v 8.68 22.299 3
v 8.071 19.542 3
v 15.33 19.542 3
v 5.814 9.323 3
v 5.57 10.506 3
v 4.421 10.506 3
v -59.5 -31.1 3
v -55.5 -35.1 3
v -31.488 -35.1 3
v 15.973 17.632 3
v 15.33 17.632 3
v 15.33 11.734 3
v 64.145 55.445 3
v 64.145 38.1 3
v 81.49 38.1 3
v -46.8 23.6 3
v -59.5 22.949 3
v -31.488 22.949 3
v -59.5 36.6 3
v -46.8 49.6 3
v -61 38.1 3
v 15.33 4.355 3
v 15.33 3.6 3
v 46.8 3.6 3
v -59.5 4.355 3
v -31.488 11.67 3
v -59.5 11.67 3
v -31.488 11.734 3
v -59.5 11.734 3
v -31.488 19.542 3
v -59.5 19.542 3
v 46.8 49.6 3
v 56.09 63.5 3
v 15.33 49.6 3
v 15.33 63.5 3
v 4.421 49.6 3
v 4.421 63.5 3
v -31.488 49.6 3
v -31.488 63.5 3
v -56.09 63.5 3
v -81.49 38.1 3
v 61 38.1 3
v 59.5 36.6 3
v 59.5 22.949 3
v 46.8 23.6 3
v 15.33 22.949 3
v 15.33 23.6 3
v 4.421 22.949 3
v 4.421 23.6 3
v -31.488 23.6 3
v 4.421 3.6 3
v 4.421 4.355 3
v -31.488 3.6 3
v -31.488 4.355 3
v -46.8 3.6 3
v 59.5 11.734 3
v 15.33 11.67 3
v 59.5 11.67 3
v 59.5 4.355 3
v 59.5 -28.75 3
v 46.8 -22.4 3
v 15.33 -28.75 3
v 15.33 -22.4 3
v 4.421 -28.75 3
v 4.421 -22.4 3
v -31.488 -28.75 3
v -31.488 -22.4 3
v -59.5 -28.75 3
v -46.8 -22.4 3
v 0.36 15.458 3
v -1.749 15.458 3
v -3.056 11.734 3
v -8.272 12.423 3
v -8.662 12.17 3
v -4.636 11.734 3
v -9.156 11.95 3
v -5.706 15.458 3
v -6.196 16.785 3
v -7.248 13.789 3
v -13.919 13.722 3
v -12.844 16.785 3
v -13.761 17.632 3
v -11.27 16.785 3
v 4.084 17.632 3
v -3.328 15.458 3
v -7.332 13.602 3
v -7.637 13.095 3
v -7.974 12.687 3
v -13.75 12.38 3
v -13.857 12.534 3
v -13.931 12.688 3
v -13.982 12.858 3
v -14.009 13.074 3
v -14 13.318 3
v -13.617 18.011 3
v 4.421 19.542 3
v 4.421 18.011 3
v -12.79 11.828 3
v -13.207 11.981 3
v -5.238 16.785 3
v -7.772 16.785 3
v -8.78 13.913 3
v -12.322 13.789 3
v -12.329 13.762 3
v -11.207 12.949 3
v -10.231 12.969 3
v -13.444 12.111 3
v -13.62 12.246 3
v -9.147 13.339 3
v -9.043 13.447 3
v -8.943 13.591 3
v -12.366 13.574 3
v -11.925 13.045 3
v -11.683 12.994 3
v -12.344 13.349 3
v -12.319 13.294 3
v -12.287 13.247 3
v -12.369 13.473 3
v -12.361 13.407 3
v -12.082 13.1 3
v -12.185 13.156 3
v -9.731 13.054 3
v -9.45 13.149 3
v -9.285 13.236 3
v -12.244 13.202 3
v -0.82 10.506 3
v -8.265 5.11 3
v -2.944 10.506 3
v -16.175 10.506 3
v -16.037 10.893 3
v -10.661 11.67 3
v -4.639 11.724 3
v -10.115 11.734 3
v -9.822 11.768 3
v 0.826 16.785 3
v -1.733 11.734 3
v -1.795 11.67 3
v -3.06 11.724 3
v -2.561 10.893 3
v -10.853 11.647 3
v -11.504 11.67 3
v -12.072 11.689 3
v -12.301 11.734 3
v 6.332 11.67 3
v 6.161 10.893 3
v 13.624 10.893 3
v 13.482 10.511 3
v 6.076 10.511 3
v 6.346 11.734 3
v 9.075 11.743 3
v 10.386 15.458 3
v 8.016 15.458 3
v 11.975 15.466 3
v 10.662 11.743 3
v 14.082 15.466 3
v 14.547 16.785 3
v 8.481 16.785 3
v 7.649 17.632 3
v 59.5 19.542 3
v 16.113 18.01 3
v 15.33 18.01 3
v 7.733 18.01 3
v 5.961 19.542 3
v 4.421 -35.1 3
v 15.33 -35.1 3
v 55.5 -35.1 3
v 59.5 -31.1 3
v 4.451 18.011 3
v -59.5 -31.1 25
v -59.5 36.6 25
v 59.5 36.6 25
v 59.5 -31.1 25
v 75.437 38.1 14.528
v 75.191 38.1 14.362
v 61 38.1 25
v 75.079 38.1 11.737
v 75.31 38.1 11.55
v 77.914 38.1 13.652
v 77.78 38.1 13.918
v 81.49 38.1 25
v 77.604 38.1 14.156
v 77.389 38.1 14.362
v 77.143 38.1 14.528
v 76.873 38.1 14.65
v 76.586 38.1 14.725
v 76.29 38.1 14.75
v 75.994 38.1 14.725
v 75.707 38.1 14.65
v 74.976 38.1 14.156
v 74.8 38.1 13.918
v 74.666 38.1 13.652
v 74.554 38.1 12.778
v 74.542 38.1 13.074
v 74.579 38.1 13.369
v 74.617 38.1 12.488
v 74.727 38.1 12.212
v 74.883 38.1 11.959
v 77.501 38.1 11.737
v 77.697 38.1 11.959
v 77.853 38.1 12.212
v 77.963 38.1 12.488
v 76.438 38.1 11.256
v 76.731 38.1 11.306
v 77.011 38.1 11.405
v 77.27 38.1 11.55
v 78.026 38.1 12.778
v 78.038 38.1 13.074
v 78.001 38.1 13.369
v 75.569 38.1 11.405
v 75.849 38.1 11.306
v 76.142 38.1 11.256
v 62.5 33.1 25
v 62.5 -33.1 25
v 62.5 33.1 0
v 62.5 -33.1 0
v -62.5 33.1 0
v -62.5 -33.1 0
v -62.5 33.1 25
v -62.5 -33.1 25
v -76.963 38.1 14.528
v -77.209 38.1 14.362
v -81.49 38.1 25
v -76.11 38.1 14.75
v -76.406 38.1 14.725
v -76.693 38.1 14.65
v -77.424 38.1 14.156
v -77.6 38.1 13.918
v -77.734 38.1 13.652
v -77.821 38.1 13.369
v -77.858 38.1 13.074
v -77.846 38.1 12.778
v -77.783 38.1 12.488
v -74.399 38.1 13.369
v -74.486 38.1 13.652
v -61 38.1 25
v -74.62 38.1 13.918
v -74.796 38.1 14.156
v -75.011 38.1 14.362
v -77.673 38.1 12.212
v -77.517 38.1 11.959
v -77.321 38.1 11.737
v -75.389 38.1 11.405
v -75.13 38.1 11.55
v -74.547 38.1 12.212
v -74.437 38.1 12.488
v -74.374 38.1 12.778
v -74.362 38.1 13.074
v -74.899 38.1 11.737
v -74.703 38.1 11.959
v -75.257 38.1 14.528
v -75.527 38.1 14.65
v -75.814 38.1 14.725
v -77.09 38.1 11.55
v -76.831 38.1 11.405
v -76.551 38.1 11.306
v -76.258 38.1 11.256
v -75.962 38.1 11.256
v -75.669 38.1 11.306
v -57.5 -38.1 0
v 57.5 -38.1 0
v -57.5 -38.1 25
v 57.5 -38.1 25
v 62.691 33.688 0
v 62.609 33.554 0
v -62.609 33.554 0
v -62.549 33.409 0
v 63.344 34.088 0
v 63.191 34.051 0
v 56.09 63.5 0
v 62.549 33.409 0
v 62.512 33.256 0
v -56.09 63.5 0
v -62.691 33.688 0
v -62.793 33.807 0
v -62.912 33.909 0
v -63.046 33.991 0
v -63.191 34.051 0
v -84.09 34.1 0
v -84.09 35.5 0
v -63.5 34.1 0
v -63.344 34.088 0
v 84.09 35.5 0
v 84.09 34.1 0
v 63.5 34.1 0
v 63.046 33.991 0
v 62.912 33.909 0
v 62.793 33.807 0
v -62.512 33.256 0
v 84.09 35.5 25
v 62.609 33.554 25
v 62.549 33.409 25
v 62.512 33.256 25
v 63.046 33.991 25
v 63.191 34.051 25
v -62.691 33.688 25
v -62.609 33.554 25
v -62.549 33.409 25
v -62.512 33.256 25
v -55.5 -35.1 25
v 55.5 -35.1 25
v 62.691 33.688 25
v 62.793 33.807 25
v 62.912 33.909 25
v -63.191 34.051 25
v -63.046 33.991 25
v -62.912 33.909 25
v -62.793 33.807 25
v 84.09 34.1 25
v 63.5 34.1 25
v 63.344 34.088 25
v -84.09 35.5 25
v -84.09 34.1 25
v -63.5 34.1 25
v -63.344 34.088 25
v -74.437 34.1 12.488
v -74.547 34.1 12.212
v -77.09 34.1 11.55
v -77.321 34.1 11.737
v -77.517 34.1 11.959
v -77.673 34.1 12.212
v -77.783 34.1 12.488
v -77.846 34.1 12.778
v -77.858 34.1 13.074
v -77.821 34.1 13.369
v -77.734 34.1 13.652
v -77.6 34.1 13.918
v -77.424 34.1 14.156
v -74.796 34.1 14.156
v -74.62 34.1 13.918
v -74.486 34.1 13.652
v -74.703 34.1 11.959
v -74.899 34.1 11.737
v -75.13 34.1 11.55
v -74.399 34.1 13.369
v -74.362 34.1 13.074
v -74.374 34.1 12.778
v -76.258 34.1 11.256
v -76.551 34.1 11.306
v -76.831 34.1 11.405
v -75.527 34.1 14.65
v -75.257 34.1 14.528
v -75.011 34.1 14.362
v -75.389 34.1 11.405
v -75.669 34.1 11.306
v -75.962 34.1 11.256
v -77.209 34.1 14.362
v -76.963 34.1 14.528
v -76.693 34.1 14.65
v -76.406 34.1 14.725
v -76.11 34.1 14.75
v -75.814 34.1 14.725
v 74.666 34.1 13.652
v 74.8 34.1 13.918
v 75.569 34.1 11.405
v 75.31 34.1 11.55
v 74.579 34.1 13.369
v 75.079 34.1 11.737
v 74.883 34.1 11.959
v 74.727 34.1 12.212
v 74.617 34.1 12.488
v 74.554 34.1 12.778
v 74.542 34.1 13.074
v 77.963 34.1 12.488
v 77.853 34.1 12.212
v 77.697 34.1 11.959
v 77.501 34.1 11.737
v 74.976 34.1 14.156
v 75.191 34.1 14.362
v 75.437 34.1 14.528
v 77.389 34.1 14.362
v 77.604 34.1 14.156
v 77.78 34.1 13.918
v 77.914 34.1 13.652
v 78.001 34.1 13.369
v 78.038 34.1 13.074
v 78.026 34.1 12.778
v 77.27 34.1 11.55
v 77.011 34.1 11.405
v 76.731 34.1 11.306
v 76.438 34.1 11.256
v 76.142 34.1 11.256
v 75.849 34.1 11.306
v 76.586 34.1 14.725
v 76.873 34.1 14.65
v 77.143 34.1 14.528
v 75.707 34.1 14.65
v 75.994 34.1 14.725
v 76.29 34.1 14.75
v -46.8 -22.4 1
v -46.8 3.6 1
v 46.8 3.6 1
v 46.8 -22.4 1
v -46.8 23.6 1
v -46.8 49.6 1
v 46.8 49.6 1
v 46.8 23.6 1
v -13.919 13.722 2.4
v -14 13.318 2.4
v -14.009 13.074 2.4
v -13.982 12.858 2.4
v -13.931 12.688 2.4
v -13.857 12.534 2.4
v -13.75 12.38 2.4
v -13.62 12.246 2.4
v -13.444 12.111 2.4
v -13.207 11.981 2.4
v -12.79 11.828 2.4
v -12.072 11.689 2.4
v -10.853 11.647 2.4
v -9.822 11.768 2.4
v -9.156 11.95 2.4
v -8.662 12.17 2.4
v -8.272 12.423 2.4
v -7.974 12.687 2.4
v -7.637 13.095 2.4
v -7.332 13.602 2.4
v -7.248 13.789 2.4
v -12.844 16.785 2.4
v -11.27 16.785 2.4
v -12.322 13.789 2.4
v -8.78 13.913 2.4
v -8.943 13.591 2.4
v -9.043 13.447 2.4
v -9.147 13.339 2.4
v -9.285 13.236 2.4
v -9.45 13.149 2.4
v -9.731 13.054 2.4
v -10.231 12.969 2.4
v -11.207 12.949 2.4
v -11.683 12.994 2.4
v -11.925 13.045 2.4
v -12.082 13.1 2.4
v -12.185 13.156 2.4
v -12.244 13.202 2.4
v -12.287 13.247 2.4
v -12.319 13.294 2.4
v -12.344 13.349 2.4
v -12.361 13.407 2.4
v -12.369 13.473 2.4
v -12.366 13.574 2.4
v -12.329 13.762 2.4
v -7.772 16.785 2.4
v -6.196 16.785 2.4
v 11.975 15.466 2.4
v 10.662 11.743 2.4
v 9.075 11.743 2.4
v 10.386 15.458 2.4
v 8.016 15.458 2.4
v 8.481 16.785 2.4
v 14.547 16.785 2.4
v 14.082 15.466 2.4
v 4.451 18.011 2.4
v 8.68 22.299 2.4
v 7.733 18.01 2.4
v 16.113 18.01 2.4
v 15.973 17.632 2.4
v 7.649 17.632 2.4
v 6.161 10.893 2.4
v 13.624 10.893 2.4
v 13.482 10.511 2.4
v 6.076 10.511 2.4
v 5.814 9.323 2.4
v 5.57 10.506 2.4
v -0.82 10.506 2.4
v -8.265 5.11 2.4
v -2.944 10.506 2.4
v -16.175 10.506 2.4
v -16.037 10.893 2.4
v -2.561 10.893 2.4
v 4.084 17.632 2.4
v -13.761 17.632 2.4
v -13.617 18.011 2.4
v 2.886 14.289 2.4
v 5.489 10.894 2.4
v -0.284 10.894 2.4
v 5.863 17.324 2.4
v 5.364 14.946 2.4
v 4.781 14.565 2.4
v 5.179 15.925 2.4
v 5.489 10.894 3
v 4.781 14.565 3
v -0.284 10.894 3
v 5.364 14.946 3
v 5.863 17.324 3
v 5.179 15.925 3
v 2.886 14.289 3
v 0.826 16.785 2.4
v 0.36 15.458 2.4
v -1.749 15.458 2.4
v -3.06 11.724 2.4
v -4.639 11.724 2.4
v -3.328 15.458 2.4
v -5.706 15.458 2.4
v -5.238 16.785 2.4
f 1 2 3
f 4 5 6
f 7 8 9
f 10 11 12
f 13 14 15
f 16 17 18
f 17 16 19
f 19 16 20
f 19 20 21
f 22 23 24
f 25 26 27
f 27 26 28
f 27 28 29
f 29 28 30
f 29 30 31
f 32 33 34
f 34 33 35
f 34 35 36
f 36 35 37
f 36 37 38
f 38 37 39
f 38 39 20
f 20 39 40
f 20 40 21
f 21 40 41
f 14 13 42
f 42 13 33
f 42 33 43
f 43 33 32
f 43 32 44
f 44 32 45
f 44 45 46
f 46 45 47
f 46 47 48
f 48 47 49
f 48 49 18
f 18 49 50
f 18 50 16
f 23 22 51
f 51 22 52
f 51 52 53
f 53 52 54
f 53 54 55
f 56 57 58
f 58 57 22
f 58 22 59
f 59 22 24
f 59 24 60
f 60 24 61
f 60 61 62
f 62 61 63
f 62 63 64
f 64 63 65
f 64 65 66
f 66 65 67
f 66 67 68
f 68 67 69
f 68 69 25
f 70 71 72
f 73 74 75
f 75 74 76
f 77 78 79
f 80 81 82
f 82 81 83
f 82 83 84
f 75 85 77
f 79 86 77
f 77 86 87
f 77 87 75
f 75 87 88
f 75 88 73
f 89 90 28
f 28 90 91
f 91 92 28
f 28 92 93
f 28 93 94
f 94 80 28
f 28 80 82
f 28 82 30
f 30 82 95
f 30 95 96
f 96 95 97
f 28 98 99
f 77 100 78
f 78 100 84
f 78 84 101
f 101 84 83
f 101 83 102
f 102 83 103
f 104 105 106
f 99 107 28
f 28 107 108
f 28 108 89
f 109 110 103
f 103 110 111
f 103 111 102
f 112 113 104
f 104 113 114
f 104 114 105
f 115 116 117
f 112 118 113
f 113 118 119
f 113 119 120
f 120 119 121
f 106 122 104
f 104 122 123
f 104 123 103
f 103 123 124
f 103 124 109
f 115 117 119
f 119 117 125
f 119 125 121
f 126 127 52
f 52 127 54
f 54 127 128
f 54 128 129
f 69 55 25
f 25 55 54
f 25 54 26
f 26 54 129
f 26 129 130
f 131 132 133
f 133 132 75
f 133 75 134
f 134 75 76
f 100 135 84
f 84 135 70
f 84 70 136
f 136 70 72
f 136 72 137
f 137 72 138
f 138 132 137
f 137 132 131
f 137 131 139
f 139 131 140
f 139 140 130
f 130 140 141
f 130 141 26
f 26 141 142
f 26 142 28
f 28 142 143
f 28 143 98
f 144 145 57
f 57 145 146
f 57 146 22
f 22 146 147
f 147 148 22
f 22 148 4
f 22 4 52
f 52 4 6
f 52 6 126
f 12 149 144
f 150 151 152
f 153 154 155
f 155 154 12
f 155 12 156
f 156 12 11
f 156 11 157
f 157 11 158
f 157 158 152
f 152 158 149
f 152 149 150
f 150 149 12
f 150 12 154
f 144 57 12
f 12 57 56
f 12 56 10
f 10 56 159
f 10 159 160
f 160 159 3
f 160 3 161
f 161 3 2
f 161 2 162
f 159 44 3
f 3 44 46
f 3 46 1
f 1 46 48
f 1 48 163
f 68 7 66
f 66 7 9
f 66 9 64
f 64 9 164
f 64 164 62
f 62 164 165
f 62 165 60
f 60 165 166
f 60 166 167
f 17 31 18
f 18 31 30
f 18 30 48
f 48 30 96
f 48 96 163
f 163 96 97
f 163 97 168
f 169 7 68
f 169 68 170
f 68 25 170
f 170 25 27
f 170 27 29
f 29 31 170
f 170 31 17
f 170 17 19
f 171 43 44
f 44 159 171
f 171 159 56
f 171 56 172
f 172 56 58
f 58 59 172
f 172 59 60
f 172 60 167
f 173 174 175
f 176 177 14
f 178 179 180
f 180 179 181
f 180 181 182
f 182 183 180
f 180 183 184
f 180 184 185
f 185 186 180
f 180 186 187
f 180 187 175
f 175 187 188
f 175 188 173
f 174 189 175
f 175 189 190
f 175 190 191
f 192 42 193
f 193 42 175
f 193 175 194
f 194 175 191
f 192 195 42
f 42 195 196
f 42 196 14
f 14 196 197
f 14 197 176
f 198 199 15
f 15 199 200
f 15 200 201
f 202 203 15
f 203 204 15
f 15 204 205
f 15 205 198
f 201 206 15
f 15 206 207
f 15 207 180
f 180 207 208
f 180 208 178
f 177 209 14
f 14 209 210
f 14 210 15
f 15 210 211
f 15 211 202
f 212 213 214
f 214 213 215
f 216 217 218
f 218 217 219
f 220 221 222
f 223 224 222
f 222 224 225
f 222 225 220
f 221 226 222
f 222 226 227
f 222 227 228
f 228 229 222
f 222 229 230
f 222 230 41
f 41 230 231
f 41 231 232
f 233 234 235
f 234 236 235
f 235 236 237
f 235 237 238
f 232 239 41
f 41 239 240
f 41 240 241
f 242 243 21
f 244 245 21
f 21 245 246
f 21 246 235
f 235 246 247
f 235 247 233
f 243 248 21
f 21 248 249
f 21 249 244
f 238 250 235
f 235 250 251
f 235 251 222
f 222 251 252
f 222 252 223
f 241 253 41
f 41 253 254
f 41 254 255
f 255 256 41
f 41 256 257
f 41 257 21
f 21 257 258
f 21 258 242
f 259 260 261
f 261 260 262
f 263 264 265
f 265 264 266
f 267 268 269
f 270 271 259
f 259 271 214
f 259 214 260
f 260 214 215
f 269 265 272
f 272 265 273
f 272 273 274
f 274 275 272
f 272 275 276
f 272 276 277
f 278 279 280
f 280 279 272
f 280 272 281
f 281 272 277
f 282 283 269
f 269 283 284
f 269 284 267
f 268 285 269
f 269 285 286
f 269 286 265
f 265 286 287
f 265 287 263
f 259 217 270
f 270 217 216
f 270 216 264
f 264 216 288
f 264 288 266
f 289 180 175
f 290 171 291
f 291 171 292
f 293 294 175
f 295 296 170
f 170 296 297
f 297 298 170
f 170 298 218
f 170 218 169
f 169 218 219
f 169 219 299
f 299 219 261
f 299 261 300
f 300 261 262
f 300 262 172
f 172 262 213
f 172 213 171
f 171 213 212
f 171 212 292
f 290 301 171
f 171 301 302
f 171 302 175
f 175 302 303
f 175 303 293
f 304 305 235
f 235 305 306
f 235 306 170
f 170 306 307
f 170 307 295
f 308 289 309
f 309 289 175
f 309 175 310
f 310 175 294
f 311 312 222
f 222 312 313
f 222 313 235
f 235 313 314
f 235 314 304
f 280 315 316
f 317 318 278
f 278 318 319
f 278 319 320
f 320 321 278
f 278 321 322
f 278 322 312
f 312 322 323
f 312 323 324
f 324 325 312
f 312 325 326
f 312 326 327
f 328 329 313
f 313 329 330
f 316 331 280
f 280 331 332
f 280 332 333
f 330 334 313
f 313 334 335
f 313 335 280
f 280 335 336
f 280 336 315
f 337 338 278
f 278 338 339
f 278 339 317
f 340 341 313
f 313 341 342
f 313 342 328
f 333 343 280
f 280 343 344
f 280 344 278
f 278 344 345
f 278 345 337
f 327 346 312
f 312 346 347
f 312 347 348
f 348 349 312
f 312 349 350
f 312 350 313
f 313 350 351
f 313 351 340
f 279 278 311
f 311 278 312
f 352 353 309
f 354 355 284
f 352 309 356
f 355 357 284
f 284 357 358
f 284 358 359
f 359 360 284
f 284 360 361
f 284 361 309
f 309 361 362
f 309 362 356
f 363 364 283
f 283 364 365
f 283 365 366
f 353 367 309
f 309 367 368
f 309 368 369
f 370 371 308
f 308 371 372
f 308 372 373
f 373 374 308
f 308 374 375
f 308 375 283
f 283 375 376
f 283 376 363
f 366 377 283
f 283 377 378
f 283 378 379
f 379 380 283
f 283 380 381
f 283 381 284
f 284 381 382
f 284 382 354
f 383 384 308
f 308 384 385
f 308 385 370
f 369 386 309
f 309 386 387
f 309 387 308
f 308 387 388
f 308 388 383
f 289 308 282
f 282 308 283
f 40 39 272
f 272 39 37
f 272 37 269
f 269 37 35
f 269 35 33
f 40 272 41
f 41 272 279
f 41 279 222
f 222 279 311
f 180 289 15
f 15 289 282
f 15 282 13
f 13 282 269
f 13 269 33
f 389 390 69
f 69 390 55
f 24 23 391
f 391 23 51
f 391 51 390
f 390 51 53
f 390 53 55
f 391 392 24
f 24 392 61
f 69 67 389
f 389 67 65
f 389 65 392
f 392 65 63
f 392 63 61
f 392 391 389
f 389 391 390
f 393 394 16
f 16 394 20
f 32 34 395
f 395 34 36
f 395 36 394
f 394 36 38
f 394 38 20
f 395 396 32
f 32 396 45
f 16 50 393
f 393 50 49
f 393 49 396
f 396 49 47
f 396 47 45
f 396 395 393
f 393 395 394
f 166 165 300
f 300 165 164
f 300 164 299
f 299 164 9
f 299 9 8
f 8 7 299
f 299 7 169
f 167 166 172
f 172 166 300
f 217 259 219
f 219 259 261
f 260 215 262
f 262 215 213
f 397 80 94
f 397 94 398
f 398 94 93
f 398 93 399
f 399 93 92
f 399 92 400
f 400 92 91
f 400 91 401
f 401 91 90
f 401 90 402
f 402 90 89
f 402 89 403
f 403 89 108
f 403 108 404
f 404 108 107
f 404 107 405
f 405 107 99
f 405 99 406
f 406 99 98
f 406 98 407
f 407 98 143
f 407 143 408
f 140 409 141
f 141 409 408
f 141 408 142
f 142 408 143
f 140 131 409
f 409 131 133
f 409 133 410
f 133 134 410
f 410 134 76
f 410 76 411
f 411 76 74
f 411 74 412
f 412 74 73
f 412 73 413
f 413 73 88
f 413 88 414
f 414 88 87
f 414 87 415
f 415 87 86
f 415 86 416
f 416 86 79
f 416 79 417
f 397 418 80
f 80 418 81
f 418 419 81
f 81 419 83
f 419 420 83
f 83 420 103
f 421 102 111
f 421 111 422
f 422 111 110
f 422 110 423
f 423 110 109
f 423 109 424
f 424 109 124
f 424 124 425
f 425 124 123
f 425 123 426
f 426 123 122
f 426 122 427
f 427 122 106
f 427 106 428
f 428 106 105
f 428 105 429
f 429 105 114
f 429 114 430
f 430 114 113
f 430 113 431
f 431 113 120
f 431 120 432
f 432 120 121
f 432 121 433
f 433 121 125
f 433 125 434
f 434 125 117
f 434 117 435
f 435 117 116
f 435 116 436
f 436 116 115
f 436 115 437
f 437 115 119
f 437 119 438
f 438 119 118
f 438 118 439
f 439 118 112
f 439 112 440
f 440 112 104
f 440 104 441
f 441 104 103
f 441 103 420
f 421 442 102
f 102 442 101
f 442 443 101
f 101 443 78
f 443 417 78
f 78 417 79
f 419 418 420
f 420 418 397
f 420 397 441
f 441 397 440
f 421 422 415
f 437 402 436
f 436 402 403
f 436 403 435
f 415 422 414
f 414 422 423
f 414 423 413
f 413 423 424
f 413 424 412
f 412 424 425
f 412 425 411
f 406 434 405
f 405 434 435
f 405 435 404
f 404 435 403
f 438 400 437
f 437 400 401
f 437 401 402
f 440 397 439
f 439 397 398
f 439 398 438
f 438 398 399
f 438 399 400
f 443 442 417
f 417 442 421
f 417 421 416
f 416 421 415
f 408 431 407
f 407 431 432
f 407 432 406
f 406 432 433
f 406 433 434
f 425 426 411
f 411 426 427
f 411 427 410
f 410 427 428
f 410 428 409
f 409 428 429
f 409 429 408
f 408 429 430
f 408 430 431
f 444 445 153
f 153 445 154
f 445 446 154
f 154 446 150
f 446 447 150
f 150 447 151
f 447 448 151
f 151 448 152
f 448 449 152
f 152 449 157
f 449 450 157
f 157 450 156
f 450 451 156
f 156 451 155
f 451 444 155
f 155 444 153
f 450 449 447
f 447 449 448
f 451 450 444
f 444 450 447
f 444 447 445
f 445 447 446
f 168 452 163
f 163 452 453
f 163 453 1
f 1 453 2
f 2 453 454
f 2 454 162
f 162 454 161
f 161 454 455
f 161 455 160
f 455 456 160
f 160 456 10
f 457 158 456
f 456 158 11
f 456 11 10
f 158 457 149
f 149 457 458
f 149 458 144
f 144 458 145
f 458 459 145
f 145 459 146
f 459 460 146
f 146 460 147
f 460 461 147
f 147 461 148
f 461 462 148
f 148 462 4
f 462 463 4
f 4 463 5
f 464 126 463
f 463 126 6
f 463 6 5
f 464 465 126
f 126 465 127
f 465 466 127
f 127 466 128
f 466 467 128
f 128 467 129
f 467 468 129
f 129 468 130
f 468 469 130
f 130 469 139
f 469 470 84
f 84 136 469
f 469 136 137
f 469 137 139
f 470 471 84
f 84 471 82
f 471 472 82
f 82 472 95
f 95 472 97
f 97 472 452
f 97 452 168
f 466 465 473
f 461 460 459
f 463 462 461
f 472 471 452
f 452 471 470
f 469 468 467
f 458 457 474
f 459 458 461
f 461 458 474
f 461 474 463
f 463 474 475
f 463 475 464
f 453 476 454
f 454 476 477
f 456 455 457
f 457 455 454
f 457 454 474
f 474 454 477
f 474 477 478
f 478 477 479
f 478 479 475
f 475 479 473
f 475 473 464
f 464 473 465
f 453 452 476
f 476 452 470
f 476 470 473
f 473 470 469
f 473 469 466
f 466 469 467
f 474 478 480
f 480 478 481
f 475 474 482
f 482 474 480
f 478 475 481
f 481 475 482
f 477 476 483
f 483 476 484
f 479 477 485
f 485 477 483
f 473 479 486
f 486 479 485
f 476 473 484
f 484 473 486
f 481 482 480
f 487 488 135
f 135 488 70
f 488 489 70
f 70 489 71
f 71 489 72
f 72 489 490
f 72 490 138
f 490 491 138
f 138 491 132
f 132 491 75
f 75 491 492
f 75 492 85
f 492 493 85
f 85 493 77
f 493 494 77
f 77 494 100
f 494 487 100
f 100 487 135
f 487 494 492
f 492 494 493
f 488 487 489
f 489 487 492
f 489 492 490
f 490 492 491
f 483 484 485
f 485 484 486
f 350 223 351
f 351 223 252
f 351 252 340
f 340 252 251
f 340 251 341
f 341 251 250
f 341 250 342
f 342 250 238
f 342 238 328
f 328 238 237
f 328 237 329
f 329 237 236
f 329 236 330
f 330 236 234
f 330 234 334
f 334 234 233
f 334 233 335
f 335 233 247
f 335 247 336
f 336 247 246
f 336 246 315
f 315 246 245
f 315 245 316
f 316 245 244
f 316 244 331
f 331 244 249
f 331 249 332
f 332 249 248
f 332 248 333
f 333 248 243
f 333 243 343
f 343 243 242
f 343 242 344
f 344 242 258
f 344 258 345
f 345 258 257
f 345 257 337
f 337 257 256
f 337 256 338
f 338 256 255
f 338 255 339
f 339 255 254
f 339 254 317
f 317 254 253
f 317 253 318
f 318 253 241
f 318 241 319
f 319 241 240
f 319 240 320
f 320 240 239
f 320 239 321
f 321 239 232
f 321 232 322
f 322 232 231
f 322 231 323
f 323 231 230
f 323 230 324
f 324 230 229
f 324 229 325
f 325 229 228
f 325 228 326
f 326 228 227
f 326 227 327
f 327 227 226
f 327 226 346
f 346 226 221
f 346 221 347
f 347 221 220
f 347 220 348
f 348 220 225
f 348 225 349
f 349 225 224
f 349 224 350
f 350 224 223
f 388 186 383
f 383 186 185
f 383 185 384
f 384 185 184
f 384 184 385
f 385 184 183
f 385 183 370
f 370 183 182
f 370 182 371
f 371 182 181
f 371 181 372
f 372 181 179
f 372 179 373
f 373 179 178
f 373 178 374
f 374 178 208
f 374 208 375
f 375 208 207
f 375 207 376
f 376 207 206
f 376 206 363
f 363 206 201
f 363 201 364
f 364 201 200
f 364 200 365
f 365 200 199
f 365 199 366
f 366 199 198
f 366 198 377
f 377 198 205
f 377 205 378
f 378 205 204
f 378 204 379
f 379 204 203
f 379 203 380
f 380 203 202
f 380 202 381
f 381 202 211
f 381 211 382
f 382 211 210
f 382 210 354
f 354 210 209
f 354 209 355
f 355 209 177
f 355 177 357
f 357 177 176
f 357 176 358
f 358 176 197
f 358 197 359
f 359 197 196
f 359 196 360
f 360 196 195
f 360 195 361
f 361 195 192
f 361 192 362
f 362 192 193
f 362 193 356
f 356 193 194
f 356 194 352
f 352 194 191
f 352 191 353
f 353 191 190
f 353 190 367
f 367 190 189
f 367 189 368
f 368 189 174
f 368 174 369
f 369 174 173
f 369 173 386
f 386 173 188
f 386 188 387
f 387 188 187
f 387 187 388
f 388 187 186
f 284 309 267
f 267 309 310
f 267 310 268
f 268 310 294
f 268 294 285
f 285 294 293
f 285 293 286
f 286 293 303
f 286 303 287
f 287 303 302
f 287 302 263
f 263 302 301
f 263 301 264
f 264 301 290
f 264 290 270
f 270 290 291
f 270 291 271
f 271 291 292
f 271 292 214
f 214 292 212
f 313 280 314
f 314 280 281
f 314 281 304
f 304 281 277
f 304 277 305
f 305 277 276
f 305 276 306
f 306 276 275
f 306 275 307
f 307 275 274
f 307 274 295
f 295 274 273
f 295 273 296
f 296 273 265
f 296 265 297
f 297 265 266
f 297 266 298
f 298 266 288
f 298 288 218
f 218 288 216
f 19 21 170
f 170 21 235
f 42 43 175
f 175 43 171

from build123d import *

# Parameters (mm, degrees)
SKETCH1_W           = 125
SKETCH1_H           = 76.2
BOSS_EXTRUDE1_DEPTH = 3
SKETCH2_W           = 3
SKETCH2_H           = 76.2
BOSS_EXTRUDE2_DEPTH = 22
SKETCH4_W           = 25
SKETCH4_H           = 4
BOSS_EXTRUDE4_DEPTH = 21.59
SKETCH5_W           = 25
SKETCH5_H           = 4
BOSS_EXTRUDE5_DEPTH = 21.59
SKETCH6_W           = 168.18
SKETCH6_H           = 25.4
BOSS_EXTRUDE6_DEPTH = 3
CHAMFER1_SIZE       = 28
SKETCH7_W           = 93.6
SKETCH7_H           = 26
CUT_EXTRUDE1_DEPTH  = 2
SKETCH9_W           = 119
SKETCH9_H           = 3
BOSS_EXTRUDE7_DEPTH = 22
CHAMFER2_SIZE       = 4
CHAMFER3_SIZE       = 5
CUT_EXTRUDE2_START  = -0.6
CUT_EXTRUDE2_DEPTH  = 0.6
SKETCH11_R          = 1.75
CUT_EXTRUDE3_DEPTH  = 5
FILLET1_R           = 1
CHAMFER4_SIZE       = 1.5


# Read off the part's stored shape, not the designer's step: Cut-Extrude2
with BuildPart() as part:
    # Sketch1 → Boss-Extrude1 (new body)
    with BuildSketch(Plane.XY):
        Rectangle(SKETCH1_W, SKETCH1_H)
    extrude(amount=BOSS_EXTRUDE1_DEPTH)

    # Sketch2 → Boss-Extrude2 (add)
    with BuildSketch(Plane.XY.offset(3)):
        with Locations((-61, 0)):
            Rectangle(SKETCH2_W, SKETCH2_H)
        with Locations((61, 0)):
            Rectangle(SKETCH2_W, SKETCH2_H)
    extrude(amount=BOSS_EXTRUDE2_DEPTH)

    # Sketch4 → Boss-Extrude4 (add)
    with BuildSketch(Plane.ZY.offset(62.5)):
        with Locations((12.5, 36.1)):
            Rectangle(SKETCH4_W, SKETCH4_H)
    extrude(amount=BOSS_EXTRUDE4_DEPTH)

    # Sketch5 → Boss-Extrude5 (add)
    with BuildSketch(Plane(origin=(62.5, 0, 0), x_dir=(0, 0, -1), z_dir=(1, 0, 0))):
        with Locations((-12.5, 36.1)):
            Rectangle(SKETCH5_W, SKETCH5_H)
    extrude(amount=BOSS_EXTRUDE5_DEPTH)

    # Sketch6 → Boss-Extrude6 (add)
    with BuildSketch(Plane(origin=(0, 0, 0), x_dir=(-1, 0, 0), z_dir=(0, 0, -1))):
        with Locations((0, 50.8)):
            Rectangle(SKETCH6_W, SKETCH6_H)
    extrude(amount=-BOSS_EXTRUDE6_DEPTH)

    # Chamfer1
    chamfer1_edges = [part.edges().sort_by_distance(p)[0] for p in [
        (-84.09, 63.5, 1.5),
        (84.09, 63.5, 1.5),
    ]]
    chamfer(chamfer1_edges, length=CHAMFER1_SIZE)

    # Sketch7 → Cut-Extrude1 (cut)
    with BuildSketch(Plane.XY.offset(3)):
        with Locations((0, -9.4)):
            Rectangle(SKETCH7_W, SKETCH7_H)
        with Locations((0, 36.6)):
            Rectangle(SKETCH7_W, SKETCH7_H)
    extrude(amount=-CUT_EXTRUDE1_DEPTH, mode=Mode.SUBTRACT)

    # Sketch9 → Boss-Extrude7 (add)
    with BuildSketch(Plane.XY.offset(3)):
        with Locations((0, -36.6)):
            Rectangle(SKETCH9_W, SKETCH9_H)
    extrude(amount=BOSS_EXTRUDE7_DEPTH)

    # Chamfer2
    chamfer2_edges = [part.edges().sort_by_distance(p)[0] for p in [
        (-59.5, -35.1, 14),
        (59.5, -35.1, 14),
    ]]
    chamfer(chamfer2_edges, length=CHAMFER2_SIZE)

    # Chamfer3
    chamfer3_edges = [part.edges().sort_by_distance(p)[0] for p in [
        (62.5, -38.1, 12.5),
        (-62.5, -38.1, 12.5),
    ]]
    chamfer(chamfer3_edges, length=CHAMFER3_SIZE)

    # Cut-Extrude2 outline → Cut-Extrude2 (cut)
    # profile 1 of 4: a face of its own
    with BuildSketch(Plane.XY.offset(3).offset(CUT_EXTRUDE2_START)):
        with BuildLine():
            Line((-12.843793417, 16.784775128), (-13.918894641, 13.722312614))
            add(Edge.make_bspline(
                [(-13.918894641, 13.722312614), (-13.950745906, 13.608646354), (-13.97919001, 13.483685694), (-14.011317489, 13.235305925), (-14.01541758, 13.110841548), (-13.989547543, 12.867284383), (-13.959604678, 12.747961158), (-13.857332343, 12.519974586), (-13.78490702, 12.411398187), (-13.592313629, 12.212018271), (-13.472083062, 12.121314997), (-13.184369222, 11.962818623), (-13.016909084, 11.895027419), (-12.454211206, 11.728033285), (-11.997806272, 11.664794493), (-11.025815686, 11.62704002), (-10.511530183, 11.651603075), (-9.78258436, 11.770518687), (-9.546683753, 11.824200176), (-9.102156978, 11.962599668), (-8.89364967, 12.047436893), (-8.514064046, 12.246658938), (-8.343153207, 12.361026326), (-8.04132547, 12.611058926), (-7.910418089, 12.746448479), (-7.679883041, 13.0275306), (-7.579636344, 13.172799488), (-7.44297026, 13.39668043), (-7.39971151, 13.472431032), (-7.318663078, 13.627460279), (-7.280772846, 13.706786212), (-7.248185858, 13.788667895)],
                knots=[0, 0, 0, 0, 0.0625, 0.0625, 0.125, 0.125, 0.1875, 0.1875, 0.25, 0.25, 0.3125, 0.3125, 0.375, 0.375, 0.5, 0.5, 0.625, 0.625, 0.6875, 0.6875, 0.75, 0.75, 0.8125, 0.8125, 0.875, 0.875, 0.9375, 0.9375, 0.96875, 0.96875, 1, 1, 1, 1], degree=3))
            Line((-7.248185858, 13.788667895), (-6.196379448, 16.784775128))
            Line((-6.196379448, 16.784775128), (-7.771512854, 16.784775171))
            Line((-7.771512854, 16.784775171), (-8.779640442, 13.913087848))
            add(Edge.make_bspline(
                [(-8.779640442, 13.913087848), (-8.801212863, 13.867686768), (-8.828630281, 13.811426743), (-8.890437912, 13.684919137), (-8.925723343, 13.615289873), (-9.014867696, 13.477778317), (-9.069034752, 13.410065742), (-9.20356673, 13.286811644), (-9.283951715, 13.231246188), (-9.470687062, 13.136081945), (-9.576947425, 13.096402347), (-9.809000897, 13.032201026), (-9.934689567, 13.00760449), (-10.326953956, 12.952228061), (-10.607716868, 12.939250309), (-11.138236784, 12.940792557), (-11.387946526, 12.95495502), (-11.815776289, 13.010911905), (-11.994686961, 13.05312605), (-12.19022456, 13.154353945), (-12.243244201, 13.194586759), (-12.322270156, 13.289978248), (-12.348136332, 13.345299657), (-12.373130151, 13.46826163), (-12.371956966, 13.5361378), (-12.35254935, 13.67085438), (-12.333771283, 13.737944141), (-12.322165603, 13.788667937)],
                knots=[0, 0, 0, 0, 0.0625, 0.0625, 0.125, 0.125, 0.1875, 0.1875, 0.25, 0.25, 0.3125, 0.3125, 0.375, 0.375, 0.5, 0.5, 0.625, 0.625, 0.75, 0.75, 0.8125, 0.8125, 0.875, 0.875, 0.9375, 0.9375, 1, 1, 1, 1], degree=3))
            Line((-12.322165603, 13.788667937), (-11.2703582, 16.784775128))
            Line((-11.2703582, 16.784775128), (-12.843793417, 16.784775128))
        make_face()
    # profile 2 of 4: a face of its own
    with BuildSketch(Plane.XY.offset(3).offset(CUT_EXTRUDE2_START)):
        Polygon((14.082145905, 15.466432145), (14.547318434, 16.784775128), (8.481425261, 16.784775128), (8.015662645, 15.45803385), (10.386127447, 15.45803385), (9.075451111, 11.743439605), (10.661733364, 11.743439605), (11.975372051, 15.466432145), align=None)
    # profile 3 of 4: a face of its own
    with BuildSketch(Plane.XY.offset(3).offset(CUT_EXTRUDE2_START)):
        Polygon((0.359928822, 15.45803385), (0.825593089, 16.784775128), (-5.237786258, 16.784775128), (-5.705919648, 15.45803385), (-3.328357423, 15.45803385), (-4.639000977, 11.723834147), (-3.059652234, 11.723834147), (-1.74900868, 15.45803385), align=None)
    # profile 4 of 4: a face of its own
    with BuildSketch(Plane.XY.offset(3).offset(CUT_EXTRUDE2_START)):
        Polygon((7.732615088, 18.009820452), (8.67993853, 22.298690548), (4.451236342, 18.010625114), (-13.617285872, 18.010625114), (-13.760696138, 17.631800344), (4.083976363, 17.631800344), (-2.561139847, 10.89339914), (-16.036862666, 10.89339914), (-16.175076152, 10.505618026), (-2.943552817, 10.505618026), (-8.264964605, 5.10950355), (-0.819885517, 10.505618026), (5.569839691, 10.505618026), (5.813932632, 9.32327198), (6.07620201, 10.510665049), (13.482070183, 10.510665049), (13.624063348, 10.89339914), (6.160742258, 10.89339914), (7.649117922, 17.631800344), (15.972876762, 17.631800344), (16.113123511, 18.009820452), align=None)
        Polygon((-0.283933962, 10.894070437), (4.780674194, 14.564845582), (5.489286994, 10.894070437), align=None, mode=Mode.SUBTRACT)
        Polygon((5.863139247, 17.323666682), (5.364033793, 14.945937564), (5.179256414, 15.9244998), (2.885975157, 14.289472868), align=None, mode=Mode.SUBTRACT)
    extrude(amount=CUT_EXTRUDE2_DEPTH, mode=Mode.SUBTRACT)

    # Sketch11 → Cut-Extrude3 (cut)
    with BuildSketch(Plane(origin=(0, 38.1, 0), x_dir=(1, 0, 0), z_dir=(0, 1, 0))):
        with Locations(Location((-76.11, -13, 0), (0, 0, 270))):
            Circle(SKETCH11_R)
        with Locations(Location((76.29, -13, 0), (0, 0, 270))):
            Circle(SKETCH11_R)
    extrude(amount=-CUT_EXTRUDE3_DEPTH, mode=Mode.SUBTRACT)

    # Fillet1
    fillet1_edges = [part.edges().sort_by_distance(p)[0] for p in [
        (-62.5, 34.1, 12.5),
        (62.5, 34.1, 12.5),
    ]]
    fillet(fillet1_edges, radius=FILLET1_R)

    # Chamfer4
    chamfer4_edges = [part.edges().sort_by_distance(p)[0] for p in [
        (-59.5, 38.1, 14),
        (59.5, 38.1, 14),
    ]]
    chamfer(chamfer4_edges, length=CHAMFER4_SIZE)


solid = part.part
